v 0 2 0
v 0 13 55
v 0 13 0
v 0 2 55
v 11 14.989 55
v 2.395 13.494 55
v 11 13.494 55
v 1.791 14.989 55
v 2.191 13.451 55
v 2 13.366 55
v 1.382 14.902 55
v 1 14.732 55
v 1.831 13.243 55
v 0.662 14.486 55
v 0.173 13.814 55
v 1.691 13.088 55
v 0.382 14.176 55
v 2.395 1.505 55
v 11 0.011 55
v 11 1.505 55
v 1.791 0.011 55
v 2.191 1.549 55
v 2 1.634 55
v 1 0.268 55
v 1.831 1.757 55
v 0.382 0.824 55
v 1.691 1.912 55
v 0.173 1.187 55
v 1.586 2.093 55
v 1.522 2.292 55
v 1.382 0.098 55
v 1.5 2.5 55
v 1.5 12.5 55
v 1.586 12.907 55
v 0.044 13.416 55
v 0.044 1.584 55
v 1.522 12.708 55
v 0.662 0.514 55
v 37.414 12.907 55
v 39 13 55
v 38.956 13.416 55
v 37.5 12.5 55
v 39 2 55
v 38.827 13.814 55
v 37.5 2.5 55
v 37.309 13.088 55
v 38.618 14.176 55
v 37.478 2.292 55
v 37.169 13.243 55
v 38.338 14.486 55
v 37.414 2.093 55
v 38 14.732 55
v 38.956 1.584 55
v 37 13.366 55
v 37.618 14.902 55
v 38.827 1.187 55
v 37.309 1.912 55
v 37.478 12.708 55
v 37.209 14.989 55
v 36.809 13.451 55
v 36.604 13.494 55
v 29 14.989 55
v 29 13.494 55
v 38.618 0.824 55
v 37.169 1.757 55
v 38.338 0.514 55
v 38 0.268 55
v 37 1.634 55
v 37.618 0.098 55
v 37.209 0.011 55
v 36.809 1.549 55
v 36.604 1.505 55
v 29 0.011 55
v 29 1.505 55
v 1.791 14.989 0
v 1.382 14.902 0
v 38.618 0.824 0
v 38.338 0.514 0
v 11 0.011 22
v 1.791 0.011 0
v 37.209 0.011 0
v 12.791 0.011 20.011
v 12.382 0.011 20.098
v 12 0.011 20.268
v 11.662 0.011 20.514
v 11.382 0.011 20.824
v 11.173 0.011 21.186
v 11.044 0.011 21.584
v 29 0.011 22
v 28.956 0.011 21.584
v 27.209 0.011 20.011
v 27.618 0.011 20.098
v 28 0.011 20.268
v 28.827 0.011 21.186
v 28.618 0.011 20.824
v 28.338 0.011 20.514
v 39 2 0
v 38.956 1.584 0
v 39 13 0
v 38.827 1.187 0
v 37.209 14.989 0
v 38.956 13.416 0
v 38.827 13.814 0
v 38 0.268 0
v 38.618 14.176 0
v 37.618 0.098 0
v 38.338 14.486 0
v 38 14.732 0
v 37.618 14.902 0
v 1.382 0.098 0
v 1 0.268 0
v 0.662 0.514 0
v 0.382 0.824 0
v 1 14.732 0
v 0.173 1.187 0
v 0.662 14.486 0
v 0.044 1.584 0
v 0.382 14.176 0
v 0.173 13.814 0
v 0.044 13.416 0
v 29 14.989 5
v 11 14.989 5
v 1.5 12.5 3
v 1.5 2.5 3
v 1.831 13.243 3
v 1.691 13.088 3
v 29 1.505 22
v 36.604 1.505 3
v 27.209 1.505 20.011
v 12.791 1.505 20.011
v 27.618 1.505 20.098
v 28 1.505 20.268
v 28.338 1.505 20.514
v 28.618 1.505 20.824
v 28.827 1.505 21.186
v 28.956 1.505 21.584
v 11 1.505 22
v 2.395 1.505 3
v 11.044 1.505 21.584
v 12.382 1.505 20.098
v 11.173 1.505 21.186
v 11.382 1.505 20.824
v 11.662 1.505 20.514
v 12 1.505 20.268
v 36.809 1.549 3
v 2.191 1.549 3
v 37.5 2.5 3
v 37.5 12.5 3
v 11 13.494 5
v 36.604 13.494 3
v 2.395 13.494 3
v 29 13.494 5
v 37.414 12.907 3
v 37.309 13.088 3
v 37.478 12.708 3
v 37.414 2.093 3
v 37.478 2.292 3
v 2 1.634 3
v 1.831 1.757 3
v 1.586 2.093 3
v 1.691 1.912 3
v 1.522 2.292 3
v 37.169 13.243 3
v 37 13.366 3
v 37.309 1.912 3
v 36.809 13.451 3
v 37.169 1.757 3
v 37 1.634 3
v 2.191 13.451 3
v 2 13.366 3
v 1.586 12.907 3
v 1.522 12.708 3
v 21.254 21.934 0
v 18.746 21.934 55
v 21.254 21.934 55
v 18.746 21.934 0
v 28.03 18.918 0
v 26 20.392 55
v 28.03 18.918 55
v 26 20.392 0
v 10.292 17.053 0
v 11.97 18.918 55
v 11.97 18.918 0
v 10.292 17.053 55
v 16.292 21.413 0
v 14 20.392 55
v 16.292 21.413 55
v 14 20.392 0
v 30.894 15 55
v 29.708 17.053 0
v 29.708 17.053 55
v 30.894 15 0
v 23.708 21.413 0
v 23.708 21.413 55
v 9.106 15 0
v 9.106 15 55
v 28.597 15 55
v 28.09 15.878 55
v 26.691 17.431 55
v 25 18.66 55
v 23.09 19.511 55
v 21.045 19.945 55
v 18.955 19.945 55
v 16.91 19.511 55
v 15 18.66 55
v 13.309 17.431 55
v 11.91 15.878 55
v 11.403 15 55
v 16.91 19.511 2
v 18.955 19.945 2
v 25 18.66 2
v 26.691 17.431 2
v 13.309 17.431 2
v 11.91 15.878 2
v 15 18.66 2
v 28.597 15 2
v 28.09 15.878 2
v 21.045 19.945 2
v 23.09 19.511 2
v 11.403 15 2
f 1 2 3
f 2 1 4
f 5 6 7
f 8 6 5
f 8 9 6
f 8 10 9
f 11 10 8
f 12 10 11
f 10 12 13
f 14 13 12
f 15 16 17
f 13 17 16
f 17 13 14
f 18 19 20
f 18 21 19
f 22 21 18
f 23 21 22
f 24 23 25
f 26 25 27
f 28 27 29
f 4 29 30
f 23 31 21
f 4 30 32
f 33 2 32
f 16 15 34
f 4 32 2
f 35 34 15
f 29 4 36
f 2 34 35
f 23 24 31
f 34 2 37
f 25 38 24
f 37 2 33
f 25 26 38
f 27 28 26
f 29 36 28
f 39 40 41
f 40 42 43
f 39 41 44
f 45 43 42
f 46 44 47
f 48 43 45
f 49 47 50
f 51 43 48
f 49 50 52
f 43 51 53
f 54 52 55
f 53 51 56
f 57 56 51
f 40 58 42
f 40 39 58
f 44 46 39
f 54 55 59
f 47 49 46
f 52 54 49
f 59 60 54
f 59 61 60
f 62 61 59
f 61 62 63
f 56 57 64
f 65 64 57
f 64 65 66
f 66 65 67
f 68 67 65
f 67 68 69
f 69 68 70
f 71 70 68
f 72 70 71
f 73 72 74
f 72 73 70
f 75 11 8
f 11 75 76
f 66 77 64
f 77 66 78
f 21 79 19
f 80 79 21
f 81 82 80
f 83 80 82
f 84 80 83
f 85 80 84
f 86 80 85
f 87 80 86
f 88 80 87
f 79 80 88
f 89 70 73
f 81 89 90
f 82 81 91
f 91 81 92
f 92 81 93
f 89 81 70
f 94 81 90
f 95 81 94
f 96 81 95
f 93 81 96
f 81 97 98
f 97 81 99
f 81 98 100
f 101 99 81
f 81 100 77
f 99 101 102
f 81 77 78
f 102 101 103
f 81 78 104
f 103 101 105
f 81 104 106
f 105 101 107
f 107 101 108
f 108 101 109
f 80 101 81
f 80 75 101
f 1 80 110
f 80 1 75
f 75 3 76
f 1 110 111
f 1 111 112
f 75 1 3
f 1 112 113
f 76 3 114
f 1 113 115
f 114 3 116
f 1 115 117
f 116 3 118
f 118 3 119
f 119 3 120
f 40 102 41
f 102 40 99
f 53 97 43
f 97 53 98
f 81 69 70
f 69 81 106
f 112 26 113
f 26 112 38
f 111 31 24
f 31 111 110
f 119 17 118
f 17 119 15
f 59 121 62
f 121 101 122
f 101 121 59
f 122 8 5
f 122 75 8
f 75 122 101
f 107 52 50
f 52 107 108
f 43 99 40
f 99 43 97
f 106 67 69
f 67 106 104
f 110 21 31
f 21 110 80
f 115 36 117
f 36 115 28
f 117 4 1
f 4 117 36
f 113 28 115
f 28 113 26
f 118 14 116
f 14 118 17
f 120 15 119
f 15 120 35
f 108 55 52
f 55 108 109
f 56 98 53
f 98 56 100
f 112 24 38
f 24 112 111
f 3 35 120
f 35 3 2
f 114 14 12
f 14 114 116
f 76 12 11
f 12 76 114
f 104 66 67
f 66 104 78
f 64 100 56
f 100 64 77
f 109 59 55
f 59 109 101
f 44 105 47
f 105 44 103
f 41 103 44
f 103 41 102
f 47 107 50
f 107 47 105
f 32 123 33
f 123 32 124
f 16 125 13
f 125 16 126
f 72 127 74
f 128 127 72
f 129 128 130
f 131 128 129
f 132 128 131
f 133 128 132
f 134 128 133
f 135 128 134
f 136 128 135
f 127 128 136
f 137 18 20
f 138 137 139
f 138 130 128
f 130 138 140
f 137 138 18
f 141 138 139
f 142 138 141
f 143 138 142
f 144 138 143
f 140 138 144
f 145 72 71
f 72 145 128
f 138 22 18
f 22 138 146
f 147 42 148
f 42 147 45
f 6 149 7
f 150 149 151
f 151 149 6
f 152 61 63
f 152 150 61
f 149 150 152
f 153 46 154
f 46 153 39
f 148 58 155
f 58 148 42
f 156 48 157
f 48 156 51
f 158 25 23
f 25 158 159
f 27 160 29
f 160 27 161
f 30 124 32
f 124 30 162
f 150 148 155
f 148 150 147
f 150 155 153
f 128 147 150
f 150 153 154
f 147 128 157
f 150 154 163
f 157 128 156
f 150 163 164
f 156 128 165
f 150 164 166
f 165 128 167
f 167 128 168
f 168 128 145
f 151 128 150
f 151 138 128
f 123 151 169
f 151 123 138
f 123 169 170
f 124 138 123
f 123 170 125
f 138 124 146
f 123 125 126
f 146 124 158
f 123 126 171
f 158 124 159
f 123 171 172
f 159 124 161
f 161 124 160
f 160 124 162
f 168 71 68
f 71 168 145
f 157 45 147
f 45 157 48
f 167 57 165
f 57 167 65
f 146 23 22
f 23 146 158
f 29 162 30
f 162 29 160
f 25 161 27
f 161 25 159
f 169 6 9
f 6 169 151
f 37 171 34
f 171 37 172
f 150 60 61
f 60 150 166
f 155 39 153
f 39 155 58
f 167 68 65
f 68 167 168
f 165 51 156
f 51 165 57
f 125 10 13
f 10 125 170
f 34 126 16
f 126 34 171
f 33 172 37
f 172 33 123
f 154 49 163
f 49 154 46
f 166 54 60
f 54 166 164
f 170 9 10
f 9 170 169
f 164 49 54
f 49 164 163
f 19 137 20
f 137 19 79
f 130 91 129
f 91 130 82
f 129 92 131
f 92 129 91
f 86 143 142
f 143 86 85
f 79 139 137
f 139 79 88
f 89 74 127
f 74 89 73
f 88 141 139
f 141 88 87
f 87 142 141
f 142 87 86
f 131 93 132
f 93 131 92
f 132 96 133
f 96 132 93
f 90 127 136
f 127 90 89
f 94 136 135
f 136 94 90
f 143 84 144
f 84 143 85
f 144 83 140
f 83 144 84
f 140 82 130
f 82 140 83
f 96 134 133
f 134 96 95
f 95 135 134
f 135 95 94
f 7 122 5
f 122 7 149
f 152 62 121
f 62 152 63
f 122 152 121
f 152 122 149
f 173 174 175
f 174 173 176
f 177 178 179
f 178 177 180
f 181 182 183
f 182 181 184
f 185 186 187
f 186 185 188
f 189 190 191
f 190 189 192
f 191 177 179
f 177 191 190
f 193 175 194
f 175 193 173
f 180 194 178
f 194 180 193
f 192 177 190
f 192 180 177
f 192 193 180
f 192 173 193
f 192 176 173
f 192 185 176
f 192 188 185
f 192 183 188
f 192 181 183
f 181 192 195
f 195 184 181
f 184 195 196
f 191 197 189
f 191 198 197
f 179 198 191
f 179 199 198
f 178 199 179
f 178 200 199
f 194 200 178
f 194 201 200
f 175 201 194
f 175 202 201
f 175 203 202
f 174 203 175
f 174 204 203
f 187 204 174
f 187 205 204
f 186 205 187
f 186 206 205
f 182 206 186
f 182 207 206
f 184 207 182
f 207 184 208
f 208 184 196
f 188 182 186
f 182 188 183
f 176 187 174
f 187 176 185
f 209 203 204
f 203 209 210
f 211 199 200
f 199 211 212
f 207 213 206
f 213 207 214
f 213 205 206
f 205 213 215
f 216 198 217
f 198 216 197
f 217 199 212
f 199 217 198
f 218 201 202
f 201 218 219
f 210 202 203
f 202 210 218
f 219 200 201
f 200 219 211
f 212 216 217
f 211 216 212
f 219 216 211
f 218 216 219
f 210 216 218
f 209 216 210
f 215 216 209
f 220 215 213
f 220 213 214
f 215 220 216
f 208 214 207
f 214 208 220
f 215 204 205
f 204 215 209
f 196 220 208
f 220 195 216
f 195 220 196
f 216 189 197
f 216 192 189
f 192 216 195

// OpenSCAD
difference() {
    round_cube(39, 15, 55, 2);
    
    translate ([1.5, 1.5, 3]) 
    round_cube(36, 12, 200, 1);
    
    translate ([11, 5, 20]) 
    rotate([90,0,0])
    
    round_cube(18, 250, 100, 2);
    
    translate ([20, 15, 35])   
    cube([18,4,60], true);    
}  

difference() {
    translate ([20, 10, 0]) 
    cylinder (h=55, r1=12, r2=12);
    
    translate ([20, 10, 2]) 
    cylinder (h=80, r1=10, r2=10);

    translate ([10, 0, -20]) 
    cube([60,30,200], true);
}

   
module round_cube(l=40,w=30,h=20,r=5,$fn=30){
	hull(){ 
		translate ([r, r, 0]) cylinder (h = h, r=r);
		translate ([r, w-r, 0]) cylinder (h = h, r=r);
		translate ([l-r,w-r, 0]) cylinder (h = h, r=r);
		translate ([l-r, r, 0]) cylinder (h = h, r=r);
	}
}
